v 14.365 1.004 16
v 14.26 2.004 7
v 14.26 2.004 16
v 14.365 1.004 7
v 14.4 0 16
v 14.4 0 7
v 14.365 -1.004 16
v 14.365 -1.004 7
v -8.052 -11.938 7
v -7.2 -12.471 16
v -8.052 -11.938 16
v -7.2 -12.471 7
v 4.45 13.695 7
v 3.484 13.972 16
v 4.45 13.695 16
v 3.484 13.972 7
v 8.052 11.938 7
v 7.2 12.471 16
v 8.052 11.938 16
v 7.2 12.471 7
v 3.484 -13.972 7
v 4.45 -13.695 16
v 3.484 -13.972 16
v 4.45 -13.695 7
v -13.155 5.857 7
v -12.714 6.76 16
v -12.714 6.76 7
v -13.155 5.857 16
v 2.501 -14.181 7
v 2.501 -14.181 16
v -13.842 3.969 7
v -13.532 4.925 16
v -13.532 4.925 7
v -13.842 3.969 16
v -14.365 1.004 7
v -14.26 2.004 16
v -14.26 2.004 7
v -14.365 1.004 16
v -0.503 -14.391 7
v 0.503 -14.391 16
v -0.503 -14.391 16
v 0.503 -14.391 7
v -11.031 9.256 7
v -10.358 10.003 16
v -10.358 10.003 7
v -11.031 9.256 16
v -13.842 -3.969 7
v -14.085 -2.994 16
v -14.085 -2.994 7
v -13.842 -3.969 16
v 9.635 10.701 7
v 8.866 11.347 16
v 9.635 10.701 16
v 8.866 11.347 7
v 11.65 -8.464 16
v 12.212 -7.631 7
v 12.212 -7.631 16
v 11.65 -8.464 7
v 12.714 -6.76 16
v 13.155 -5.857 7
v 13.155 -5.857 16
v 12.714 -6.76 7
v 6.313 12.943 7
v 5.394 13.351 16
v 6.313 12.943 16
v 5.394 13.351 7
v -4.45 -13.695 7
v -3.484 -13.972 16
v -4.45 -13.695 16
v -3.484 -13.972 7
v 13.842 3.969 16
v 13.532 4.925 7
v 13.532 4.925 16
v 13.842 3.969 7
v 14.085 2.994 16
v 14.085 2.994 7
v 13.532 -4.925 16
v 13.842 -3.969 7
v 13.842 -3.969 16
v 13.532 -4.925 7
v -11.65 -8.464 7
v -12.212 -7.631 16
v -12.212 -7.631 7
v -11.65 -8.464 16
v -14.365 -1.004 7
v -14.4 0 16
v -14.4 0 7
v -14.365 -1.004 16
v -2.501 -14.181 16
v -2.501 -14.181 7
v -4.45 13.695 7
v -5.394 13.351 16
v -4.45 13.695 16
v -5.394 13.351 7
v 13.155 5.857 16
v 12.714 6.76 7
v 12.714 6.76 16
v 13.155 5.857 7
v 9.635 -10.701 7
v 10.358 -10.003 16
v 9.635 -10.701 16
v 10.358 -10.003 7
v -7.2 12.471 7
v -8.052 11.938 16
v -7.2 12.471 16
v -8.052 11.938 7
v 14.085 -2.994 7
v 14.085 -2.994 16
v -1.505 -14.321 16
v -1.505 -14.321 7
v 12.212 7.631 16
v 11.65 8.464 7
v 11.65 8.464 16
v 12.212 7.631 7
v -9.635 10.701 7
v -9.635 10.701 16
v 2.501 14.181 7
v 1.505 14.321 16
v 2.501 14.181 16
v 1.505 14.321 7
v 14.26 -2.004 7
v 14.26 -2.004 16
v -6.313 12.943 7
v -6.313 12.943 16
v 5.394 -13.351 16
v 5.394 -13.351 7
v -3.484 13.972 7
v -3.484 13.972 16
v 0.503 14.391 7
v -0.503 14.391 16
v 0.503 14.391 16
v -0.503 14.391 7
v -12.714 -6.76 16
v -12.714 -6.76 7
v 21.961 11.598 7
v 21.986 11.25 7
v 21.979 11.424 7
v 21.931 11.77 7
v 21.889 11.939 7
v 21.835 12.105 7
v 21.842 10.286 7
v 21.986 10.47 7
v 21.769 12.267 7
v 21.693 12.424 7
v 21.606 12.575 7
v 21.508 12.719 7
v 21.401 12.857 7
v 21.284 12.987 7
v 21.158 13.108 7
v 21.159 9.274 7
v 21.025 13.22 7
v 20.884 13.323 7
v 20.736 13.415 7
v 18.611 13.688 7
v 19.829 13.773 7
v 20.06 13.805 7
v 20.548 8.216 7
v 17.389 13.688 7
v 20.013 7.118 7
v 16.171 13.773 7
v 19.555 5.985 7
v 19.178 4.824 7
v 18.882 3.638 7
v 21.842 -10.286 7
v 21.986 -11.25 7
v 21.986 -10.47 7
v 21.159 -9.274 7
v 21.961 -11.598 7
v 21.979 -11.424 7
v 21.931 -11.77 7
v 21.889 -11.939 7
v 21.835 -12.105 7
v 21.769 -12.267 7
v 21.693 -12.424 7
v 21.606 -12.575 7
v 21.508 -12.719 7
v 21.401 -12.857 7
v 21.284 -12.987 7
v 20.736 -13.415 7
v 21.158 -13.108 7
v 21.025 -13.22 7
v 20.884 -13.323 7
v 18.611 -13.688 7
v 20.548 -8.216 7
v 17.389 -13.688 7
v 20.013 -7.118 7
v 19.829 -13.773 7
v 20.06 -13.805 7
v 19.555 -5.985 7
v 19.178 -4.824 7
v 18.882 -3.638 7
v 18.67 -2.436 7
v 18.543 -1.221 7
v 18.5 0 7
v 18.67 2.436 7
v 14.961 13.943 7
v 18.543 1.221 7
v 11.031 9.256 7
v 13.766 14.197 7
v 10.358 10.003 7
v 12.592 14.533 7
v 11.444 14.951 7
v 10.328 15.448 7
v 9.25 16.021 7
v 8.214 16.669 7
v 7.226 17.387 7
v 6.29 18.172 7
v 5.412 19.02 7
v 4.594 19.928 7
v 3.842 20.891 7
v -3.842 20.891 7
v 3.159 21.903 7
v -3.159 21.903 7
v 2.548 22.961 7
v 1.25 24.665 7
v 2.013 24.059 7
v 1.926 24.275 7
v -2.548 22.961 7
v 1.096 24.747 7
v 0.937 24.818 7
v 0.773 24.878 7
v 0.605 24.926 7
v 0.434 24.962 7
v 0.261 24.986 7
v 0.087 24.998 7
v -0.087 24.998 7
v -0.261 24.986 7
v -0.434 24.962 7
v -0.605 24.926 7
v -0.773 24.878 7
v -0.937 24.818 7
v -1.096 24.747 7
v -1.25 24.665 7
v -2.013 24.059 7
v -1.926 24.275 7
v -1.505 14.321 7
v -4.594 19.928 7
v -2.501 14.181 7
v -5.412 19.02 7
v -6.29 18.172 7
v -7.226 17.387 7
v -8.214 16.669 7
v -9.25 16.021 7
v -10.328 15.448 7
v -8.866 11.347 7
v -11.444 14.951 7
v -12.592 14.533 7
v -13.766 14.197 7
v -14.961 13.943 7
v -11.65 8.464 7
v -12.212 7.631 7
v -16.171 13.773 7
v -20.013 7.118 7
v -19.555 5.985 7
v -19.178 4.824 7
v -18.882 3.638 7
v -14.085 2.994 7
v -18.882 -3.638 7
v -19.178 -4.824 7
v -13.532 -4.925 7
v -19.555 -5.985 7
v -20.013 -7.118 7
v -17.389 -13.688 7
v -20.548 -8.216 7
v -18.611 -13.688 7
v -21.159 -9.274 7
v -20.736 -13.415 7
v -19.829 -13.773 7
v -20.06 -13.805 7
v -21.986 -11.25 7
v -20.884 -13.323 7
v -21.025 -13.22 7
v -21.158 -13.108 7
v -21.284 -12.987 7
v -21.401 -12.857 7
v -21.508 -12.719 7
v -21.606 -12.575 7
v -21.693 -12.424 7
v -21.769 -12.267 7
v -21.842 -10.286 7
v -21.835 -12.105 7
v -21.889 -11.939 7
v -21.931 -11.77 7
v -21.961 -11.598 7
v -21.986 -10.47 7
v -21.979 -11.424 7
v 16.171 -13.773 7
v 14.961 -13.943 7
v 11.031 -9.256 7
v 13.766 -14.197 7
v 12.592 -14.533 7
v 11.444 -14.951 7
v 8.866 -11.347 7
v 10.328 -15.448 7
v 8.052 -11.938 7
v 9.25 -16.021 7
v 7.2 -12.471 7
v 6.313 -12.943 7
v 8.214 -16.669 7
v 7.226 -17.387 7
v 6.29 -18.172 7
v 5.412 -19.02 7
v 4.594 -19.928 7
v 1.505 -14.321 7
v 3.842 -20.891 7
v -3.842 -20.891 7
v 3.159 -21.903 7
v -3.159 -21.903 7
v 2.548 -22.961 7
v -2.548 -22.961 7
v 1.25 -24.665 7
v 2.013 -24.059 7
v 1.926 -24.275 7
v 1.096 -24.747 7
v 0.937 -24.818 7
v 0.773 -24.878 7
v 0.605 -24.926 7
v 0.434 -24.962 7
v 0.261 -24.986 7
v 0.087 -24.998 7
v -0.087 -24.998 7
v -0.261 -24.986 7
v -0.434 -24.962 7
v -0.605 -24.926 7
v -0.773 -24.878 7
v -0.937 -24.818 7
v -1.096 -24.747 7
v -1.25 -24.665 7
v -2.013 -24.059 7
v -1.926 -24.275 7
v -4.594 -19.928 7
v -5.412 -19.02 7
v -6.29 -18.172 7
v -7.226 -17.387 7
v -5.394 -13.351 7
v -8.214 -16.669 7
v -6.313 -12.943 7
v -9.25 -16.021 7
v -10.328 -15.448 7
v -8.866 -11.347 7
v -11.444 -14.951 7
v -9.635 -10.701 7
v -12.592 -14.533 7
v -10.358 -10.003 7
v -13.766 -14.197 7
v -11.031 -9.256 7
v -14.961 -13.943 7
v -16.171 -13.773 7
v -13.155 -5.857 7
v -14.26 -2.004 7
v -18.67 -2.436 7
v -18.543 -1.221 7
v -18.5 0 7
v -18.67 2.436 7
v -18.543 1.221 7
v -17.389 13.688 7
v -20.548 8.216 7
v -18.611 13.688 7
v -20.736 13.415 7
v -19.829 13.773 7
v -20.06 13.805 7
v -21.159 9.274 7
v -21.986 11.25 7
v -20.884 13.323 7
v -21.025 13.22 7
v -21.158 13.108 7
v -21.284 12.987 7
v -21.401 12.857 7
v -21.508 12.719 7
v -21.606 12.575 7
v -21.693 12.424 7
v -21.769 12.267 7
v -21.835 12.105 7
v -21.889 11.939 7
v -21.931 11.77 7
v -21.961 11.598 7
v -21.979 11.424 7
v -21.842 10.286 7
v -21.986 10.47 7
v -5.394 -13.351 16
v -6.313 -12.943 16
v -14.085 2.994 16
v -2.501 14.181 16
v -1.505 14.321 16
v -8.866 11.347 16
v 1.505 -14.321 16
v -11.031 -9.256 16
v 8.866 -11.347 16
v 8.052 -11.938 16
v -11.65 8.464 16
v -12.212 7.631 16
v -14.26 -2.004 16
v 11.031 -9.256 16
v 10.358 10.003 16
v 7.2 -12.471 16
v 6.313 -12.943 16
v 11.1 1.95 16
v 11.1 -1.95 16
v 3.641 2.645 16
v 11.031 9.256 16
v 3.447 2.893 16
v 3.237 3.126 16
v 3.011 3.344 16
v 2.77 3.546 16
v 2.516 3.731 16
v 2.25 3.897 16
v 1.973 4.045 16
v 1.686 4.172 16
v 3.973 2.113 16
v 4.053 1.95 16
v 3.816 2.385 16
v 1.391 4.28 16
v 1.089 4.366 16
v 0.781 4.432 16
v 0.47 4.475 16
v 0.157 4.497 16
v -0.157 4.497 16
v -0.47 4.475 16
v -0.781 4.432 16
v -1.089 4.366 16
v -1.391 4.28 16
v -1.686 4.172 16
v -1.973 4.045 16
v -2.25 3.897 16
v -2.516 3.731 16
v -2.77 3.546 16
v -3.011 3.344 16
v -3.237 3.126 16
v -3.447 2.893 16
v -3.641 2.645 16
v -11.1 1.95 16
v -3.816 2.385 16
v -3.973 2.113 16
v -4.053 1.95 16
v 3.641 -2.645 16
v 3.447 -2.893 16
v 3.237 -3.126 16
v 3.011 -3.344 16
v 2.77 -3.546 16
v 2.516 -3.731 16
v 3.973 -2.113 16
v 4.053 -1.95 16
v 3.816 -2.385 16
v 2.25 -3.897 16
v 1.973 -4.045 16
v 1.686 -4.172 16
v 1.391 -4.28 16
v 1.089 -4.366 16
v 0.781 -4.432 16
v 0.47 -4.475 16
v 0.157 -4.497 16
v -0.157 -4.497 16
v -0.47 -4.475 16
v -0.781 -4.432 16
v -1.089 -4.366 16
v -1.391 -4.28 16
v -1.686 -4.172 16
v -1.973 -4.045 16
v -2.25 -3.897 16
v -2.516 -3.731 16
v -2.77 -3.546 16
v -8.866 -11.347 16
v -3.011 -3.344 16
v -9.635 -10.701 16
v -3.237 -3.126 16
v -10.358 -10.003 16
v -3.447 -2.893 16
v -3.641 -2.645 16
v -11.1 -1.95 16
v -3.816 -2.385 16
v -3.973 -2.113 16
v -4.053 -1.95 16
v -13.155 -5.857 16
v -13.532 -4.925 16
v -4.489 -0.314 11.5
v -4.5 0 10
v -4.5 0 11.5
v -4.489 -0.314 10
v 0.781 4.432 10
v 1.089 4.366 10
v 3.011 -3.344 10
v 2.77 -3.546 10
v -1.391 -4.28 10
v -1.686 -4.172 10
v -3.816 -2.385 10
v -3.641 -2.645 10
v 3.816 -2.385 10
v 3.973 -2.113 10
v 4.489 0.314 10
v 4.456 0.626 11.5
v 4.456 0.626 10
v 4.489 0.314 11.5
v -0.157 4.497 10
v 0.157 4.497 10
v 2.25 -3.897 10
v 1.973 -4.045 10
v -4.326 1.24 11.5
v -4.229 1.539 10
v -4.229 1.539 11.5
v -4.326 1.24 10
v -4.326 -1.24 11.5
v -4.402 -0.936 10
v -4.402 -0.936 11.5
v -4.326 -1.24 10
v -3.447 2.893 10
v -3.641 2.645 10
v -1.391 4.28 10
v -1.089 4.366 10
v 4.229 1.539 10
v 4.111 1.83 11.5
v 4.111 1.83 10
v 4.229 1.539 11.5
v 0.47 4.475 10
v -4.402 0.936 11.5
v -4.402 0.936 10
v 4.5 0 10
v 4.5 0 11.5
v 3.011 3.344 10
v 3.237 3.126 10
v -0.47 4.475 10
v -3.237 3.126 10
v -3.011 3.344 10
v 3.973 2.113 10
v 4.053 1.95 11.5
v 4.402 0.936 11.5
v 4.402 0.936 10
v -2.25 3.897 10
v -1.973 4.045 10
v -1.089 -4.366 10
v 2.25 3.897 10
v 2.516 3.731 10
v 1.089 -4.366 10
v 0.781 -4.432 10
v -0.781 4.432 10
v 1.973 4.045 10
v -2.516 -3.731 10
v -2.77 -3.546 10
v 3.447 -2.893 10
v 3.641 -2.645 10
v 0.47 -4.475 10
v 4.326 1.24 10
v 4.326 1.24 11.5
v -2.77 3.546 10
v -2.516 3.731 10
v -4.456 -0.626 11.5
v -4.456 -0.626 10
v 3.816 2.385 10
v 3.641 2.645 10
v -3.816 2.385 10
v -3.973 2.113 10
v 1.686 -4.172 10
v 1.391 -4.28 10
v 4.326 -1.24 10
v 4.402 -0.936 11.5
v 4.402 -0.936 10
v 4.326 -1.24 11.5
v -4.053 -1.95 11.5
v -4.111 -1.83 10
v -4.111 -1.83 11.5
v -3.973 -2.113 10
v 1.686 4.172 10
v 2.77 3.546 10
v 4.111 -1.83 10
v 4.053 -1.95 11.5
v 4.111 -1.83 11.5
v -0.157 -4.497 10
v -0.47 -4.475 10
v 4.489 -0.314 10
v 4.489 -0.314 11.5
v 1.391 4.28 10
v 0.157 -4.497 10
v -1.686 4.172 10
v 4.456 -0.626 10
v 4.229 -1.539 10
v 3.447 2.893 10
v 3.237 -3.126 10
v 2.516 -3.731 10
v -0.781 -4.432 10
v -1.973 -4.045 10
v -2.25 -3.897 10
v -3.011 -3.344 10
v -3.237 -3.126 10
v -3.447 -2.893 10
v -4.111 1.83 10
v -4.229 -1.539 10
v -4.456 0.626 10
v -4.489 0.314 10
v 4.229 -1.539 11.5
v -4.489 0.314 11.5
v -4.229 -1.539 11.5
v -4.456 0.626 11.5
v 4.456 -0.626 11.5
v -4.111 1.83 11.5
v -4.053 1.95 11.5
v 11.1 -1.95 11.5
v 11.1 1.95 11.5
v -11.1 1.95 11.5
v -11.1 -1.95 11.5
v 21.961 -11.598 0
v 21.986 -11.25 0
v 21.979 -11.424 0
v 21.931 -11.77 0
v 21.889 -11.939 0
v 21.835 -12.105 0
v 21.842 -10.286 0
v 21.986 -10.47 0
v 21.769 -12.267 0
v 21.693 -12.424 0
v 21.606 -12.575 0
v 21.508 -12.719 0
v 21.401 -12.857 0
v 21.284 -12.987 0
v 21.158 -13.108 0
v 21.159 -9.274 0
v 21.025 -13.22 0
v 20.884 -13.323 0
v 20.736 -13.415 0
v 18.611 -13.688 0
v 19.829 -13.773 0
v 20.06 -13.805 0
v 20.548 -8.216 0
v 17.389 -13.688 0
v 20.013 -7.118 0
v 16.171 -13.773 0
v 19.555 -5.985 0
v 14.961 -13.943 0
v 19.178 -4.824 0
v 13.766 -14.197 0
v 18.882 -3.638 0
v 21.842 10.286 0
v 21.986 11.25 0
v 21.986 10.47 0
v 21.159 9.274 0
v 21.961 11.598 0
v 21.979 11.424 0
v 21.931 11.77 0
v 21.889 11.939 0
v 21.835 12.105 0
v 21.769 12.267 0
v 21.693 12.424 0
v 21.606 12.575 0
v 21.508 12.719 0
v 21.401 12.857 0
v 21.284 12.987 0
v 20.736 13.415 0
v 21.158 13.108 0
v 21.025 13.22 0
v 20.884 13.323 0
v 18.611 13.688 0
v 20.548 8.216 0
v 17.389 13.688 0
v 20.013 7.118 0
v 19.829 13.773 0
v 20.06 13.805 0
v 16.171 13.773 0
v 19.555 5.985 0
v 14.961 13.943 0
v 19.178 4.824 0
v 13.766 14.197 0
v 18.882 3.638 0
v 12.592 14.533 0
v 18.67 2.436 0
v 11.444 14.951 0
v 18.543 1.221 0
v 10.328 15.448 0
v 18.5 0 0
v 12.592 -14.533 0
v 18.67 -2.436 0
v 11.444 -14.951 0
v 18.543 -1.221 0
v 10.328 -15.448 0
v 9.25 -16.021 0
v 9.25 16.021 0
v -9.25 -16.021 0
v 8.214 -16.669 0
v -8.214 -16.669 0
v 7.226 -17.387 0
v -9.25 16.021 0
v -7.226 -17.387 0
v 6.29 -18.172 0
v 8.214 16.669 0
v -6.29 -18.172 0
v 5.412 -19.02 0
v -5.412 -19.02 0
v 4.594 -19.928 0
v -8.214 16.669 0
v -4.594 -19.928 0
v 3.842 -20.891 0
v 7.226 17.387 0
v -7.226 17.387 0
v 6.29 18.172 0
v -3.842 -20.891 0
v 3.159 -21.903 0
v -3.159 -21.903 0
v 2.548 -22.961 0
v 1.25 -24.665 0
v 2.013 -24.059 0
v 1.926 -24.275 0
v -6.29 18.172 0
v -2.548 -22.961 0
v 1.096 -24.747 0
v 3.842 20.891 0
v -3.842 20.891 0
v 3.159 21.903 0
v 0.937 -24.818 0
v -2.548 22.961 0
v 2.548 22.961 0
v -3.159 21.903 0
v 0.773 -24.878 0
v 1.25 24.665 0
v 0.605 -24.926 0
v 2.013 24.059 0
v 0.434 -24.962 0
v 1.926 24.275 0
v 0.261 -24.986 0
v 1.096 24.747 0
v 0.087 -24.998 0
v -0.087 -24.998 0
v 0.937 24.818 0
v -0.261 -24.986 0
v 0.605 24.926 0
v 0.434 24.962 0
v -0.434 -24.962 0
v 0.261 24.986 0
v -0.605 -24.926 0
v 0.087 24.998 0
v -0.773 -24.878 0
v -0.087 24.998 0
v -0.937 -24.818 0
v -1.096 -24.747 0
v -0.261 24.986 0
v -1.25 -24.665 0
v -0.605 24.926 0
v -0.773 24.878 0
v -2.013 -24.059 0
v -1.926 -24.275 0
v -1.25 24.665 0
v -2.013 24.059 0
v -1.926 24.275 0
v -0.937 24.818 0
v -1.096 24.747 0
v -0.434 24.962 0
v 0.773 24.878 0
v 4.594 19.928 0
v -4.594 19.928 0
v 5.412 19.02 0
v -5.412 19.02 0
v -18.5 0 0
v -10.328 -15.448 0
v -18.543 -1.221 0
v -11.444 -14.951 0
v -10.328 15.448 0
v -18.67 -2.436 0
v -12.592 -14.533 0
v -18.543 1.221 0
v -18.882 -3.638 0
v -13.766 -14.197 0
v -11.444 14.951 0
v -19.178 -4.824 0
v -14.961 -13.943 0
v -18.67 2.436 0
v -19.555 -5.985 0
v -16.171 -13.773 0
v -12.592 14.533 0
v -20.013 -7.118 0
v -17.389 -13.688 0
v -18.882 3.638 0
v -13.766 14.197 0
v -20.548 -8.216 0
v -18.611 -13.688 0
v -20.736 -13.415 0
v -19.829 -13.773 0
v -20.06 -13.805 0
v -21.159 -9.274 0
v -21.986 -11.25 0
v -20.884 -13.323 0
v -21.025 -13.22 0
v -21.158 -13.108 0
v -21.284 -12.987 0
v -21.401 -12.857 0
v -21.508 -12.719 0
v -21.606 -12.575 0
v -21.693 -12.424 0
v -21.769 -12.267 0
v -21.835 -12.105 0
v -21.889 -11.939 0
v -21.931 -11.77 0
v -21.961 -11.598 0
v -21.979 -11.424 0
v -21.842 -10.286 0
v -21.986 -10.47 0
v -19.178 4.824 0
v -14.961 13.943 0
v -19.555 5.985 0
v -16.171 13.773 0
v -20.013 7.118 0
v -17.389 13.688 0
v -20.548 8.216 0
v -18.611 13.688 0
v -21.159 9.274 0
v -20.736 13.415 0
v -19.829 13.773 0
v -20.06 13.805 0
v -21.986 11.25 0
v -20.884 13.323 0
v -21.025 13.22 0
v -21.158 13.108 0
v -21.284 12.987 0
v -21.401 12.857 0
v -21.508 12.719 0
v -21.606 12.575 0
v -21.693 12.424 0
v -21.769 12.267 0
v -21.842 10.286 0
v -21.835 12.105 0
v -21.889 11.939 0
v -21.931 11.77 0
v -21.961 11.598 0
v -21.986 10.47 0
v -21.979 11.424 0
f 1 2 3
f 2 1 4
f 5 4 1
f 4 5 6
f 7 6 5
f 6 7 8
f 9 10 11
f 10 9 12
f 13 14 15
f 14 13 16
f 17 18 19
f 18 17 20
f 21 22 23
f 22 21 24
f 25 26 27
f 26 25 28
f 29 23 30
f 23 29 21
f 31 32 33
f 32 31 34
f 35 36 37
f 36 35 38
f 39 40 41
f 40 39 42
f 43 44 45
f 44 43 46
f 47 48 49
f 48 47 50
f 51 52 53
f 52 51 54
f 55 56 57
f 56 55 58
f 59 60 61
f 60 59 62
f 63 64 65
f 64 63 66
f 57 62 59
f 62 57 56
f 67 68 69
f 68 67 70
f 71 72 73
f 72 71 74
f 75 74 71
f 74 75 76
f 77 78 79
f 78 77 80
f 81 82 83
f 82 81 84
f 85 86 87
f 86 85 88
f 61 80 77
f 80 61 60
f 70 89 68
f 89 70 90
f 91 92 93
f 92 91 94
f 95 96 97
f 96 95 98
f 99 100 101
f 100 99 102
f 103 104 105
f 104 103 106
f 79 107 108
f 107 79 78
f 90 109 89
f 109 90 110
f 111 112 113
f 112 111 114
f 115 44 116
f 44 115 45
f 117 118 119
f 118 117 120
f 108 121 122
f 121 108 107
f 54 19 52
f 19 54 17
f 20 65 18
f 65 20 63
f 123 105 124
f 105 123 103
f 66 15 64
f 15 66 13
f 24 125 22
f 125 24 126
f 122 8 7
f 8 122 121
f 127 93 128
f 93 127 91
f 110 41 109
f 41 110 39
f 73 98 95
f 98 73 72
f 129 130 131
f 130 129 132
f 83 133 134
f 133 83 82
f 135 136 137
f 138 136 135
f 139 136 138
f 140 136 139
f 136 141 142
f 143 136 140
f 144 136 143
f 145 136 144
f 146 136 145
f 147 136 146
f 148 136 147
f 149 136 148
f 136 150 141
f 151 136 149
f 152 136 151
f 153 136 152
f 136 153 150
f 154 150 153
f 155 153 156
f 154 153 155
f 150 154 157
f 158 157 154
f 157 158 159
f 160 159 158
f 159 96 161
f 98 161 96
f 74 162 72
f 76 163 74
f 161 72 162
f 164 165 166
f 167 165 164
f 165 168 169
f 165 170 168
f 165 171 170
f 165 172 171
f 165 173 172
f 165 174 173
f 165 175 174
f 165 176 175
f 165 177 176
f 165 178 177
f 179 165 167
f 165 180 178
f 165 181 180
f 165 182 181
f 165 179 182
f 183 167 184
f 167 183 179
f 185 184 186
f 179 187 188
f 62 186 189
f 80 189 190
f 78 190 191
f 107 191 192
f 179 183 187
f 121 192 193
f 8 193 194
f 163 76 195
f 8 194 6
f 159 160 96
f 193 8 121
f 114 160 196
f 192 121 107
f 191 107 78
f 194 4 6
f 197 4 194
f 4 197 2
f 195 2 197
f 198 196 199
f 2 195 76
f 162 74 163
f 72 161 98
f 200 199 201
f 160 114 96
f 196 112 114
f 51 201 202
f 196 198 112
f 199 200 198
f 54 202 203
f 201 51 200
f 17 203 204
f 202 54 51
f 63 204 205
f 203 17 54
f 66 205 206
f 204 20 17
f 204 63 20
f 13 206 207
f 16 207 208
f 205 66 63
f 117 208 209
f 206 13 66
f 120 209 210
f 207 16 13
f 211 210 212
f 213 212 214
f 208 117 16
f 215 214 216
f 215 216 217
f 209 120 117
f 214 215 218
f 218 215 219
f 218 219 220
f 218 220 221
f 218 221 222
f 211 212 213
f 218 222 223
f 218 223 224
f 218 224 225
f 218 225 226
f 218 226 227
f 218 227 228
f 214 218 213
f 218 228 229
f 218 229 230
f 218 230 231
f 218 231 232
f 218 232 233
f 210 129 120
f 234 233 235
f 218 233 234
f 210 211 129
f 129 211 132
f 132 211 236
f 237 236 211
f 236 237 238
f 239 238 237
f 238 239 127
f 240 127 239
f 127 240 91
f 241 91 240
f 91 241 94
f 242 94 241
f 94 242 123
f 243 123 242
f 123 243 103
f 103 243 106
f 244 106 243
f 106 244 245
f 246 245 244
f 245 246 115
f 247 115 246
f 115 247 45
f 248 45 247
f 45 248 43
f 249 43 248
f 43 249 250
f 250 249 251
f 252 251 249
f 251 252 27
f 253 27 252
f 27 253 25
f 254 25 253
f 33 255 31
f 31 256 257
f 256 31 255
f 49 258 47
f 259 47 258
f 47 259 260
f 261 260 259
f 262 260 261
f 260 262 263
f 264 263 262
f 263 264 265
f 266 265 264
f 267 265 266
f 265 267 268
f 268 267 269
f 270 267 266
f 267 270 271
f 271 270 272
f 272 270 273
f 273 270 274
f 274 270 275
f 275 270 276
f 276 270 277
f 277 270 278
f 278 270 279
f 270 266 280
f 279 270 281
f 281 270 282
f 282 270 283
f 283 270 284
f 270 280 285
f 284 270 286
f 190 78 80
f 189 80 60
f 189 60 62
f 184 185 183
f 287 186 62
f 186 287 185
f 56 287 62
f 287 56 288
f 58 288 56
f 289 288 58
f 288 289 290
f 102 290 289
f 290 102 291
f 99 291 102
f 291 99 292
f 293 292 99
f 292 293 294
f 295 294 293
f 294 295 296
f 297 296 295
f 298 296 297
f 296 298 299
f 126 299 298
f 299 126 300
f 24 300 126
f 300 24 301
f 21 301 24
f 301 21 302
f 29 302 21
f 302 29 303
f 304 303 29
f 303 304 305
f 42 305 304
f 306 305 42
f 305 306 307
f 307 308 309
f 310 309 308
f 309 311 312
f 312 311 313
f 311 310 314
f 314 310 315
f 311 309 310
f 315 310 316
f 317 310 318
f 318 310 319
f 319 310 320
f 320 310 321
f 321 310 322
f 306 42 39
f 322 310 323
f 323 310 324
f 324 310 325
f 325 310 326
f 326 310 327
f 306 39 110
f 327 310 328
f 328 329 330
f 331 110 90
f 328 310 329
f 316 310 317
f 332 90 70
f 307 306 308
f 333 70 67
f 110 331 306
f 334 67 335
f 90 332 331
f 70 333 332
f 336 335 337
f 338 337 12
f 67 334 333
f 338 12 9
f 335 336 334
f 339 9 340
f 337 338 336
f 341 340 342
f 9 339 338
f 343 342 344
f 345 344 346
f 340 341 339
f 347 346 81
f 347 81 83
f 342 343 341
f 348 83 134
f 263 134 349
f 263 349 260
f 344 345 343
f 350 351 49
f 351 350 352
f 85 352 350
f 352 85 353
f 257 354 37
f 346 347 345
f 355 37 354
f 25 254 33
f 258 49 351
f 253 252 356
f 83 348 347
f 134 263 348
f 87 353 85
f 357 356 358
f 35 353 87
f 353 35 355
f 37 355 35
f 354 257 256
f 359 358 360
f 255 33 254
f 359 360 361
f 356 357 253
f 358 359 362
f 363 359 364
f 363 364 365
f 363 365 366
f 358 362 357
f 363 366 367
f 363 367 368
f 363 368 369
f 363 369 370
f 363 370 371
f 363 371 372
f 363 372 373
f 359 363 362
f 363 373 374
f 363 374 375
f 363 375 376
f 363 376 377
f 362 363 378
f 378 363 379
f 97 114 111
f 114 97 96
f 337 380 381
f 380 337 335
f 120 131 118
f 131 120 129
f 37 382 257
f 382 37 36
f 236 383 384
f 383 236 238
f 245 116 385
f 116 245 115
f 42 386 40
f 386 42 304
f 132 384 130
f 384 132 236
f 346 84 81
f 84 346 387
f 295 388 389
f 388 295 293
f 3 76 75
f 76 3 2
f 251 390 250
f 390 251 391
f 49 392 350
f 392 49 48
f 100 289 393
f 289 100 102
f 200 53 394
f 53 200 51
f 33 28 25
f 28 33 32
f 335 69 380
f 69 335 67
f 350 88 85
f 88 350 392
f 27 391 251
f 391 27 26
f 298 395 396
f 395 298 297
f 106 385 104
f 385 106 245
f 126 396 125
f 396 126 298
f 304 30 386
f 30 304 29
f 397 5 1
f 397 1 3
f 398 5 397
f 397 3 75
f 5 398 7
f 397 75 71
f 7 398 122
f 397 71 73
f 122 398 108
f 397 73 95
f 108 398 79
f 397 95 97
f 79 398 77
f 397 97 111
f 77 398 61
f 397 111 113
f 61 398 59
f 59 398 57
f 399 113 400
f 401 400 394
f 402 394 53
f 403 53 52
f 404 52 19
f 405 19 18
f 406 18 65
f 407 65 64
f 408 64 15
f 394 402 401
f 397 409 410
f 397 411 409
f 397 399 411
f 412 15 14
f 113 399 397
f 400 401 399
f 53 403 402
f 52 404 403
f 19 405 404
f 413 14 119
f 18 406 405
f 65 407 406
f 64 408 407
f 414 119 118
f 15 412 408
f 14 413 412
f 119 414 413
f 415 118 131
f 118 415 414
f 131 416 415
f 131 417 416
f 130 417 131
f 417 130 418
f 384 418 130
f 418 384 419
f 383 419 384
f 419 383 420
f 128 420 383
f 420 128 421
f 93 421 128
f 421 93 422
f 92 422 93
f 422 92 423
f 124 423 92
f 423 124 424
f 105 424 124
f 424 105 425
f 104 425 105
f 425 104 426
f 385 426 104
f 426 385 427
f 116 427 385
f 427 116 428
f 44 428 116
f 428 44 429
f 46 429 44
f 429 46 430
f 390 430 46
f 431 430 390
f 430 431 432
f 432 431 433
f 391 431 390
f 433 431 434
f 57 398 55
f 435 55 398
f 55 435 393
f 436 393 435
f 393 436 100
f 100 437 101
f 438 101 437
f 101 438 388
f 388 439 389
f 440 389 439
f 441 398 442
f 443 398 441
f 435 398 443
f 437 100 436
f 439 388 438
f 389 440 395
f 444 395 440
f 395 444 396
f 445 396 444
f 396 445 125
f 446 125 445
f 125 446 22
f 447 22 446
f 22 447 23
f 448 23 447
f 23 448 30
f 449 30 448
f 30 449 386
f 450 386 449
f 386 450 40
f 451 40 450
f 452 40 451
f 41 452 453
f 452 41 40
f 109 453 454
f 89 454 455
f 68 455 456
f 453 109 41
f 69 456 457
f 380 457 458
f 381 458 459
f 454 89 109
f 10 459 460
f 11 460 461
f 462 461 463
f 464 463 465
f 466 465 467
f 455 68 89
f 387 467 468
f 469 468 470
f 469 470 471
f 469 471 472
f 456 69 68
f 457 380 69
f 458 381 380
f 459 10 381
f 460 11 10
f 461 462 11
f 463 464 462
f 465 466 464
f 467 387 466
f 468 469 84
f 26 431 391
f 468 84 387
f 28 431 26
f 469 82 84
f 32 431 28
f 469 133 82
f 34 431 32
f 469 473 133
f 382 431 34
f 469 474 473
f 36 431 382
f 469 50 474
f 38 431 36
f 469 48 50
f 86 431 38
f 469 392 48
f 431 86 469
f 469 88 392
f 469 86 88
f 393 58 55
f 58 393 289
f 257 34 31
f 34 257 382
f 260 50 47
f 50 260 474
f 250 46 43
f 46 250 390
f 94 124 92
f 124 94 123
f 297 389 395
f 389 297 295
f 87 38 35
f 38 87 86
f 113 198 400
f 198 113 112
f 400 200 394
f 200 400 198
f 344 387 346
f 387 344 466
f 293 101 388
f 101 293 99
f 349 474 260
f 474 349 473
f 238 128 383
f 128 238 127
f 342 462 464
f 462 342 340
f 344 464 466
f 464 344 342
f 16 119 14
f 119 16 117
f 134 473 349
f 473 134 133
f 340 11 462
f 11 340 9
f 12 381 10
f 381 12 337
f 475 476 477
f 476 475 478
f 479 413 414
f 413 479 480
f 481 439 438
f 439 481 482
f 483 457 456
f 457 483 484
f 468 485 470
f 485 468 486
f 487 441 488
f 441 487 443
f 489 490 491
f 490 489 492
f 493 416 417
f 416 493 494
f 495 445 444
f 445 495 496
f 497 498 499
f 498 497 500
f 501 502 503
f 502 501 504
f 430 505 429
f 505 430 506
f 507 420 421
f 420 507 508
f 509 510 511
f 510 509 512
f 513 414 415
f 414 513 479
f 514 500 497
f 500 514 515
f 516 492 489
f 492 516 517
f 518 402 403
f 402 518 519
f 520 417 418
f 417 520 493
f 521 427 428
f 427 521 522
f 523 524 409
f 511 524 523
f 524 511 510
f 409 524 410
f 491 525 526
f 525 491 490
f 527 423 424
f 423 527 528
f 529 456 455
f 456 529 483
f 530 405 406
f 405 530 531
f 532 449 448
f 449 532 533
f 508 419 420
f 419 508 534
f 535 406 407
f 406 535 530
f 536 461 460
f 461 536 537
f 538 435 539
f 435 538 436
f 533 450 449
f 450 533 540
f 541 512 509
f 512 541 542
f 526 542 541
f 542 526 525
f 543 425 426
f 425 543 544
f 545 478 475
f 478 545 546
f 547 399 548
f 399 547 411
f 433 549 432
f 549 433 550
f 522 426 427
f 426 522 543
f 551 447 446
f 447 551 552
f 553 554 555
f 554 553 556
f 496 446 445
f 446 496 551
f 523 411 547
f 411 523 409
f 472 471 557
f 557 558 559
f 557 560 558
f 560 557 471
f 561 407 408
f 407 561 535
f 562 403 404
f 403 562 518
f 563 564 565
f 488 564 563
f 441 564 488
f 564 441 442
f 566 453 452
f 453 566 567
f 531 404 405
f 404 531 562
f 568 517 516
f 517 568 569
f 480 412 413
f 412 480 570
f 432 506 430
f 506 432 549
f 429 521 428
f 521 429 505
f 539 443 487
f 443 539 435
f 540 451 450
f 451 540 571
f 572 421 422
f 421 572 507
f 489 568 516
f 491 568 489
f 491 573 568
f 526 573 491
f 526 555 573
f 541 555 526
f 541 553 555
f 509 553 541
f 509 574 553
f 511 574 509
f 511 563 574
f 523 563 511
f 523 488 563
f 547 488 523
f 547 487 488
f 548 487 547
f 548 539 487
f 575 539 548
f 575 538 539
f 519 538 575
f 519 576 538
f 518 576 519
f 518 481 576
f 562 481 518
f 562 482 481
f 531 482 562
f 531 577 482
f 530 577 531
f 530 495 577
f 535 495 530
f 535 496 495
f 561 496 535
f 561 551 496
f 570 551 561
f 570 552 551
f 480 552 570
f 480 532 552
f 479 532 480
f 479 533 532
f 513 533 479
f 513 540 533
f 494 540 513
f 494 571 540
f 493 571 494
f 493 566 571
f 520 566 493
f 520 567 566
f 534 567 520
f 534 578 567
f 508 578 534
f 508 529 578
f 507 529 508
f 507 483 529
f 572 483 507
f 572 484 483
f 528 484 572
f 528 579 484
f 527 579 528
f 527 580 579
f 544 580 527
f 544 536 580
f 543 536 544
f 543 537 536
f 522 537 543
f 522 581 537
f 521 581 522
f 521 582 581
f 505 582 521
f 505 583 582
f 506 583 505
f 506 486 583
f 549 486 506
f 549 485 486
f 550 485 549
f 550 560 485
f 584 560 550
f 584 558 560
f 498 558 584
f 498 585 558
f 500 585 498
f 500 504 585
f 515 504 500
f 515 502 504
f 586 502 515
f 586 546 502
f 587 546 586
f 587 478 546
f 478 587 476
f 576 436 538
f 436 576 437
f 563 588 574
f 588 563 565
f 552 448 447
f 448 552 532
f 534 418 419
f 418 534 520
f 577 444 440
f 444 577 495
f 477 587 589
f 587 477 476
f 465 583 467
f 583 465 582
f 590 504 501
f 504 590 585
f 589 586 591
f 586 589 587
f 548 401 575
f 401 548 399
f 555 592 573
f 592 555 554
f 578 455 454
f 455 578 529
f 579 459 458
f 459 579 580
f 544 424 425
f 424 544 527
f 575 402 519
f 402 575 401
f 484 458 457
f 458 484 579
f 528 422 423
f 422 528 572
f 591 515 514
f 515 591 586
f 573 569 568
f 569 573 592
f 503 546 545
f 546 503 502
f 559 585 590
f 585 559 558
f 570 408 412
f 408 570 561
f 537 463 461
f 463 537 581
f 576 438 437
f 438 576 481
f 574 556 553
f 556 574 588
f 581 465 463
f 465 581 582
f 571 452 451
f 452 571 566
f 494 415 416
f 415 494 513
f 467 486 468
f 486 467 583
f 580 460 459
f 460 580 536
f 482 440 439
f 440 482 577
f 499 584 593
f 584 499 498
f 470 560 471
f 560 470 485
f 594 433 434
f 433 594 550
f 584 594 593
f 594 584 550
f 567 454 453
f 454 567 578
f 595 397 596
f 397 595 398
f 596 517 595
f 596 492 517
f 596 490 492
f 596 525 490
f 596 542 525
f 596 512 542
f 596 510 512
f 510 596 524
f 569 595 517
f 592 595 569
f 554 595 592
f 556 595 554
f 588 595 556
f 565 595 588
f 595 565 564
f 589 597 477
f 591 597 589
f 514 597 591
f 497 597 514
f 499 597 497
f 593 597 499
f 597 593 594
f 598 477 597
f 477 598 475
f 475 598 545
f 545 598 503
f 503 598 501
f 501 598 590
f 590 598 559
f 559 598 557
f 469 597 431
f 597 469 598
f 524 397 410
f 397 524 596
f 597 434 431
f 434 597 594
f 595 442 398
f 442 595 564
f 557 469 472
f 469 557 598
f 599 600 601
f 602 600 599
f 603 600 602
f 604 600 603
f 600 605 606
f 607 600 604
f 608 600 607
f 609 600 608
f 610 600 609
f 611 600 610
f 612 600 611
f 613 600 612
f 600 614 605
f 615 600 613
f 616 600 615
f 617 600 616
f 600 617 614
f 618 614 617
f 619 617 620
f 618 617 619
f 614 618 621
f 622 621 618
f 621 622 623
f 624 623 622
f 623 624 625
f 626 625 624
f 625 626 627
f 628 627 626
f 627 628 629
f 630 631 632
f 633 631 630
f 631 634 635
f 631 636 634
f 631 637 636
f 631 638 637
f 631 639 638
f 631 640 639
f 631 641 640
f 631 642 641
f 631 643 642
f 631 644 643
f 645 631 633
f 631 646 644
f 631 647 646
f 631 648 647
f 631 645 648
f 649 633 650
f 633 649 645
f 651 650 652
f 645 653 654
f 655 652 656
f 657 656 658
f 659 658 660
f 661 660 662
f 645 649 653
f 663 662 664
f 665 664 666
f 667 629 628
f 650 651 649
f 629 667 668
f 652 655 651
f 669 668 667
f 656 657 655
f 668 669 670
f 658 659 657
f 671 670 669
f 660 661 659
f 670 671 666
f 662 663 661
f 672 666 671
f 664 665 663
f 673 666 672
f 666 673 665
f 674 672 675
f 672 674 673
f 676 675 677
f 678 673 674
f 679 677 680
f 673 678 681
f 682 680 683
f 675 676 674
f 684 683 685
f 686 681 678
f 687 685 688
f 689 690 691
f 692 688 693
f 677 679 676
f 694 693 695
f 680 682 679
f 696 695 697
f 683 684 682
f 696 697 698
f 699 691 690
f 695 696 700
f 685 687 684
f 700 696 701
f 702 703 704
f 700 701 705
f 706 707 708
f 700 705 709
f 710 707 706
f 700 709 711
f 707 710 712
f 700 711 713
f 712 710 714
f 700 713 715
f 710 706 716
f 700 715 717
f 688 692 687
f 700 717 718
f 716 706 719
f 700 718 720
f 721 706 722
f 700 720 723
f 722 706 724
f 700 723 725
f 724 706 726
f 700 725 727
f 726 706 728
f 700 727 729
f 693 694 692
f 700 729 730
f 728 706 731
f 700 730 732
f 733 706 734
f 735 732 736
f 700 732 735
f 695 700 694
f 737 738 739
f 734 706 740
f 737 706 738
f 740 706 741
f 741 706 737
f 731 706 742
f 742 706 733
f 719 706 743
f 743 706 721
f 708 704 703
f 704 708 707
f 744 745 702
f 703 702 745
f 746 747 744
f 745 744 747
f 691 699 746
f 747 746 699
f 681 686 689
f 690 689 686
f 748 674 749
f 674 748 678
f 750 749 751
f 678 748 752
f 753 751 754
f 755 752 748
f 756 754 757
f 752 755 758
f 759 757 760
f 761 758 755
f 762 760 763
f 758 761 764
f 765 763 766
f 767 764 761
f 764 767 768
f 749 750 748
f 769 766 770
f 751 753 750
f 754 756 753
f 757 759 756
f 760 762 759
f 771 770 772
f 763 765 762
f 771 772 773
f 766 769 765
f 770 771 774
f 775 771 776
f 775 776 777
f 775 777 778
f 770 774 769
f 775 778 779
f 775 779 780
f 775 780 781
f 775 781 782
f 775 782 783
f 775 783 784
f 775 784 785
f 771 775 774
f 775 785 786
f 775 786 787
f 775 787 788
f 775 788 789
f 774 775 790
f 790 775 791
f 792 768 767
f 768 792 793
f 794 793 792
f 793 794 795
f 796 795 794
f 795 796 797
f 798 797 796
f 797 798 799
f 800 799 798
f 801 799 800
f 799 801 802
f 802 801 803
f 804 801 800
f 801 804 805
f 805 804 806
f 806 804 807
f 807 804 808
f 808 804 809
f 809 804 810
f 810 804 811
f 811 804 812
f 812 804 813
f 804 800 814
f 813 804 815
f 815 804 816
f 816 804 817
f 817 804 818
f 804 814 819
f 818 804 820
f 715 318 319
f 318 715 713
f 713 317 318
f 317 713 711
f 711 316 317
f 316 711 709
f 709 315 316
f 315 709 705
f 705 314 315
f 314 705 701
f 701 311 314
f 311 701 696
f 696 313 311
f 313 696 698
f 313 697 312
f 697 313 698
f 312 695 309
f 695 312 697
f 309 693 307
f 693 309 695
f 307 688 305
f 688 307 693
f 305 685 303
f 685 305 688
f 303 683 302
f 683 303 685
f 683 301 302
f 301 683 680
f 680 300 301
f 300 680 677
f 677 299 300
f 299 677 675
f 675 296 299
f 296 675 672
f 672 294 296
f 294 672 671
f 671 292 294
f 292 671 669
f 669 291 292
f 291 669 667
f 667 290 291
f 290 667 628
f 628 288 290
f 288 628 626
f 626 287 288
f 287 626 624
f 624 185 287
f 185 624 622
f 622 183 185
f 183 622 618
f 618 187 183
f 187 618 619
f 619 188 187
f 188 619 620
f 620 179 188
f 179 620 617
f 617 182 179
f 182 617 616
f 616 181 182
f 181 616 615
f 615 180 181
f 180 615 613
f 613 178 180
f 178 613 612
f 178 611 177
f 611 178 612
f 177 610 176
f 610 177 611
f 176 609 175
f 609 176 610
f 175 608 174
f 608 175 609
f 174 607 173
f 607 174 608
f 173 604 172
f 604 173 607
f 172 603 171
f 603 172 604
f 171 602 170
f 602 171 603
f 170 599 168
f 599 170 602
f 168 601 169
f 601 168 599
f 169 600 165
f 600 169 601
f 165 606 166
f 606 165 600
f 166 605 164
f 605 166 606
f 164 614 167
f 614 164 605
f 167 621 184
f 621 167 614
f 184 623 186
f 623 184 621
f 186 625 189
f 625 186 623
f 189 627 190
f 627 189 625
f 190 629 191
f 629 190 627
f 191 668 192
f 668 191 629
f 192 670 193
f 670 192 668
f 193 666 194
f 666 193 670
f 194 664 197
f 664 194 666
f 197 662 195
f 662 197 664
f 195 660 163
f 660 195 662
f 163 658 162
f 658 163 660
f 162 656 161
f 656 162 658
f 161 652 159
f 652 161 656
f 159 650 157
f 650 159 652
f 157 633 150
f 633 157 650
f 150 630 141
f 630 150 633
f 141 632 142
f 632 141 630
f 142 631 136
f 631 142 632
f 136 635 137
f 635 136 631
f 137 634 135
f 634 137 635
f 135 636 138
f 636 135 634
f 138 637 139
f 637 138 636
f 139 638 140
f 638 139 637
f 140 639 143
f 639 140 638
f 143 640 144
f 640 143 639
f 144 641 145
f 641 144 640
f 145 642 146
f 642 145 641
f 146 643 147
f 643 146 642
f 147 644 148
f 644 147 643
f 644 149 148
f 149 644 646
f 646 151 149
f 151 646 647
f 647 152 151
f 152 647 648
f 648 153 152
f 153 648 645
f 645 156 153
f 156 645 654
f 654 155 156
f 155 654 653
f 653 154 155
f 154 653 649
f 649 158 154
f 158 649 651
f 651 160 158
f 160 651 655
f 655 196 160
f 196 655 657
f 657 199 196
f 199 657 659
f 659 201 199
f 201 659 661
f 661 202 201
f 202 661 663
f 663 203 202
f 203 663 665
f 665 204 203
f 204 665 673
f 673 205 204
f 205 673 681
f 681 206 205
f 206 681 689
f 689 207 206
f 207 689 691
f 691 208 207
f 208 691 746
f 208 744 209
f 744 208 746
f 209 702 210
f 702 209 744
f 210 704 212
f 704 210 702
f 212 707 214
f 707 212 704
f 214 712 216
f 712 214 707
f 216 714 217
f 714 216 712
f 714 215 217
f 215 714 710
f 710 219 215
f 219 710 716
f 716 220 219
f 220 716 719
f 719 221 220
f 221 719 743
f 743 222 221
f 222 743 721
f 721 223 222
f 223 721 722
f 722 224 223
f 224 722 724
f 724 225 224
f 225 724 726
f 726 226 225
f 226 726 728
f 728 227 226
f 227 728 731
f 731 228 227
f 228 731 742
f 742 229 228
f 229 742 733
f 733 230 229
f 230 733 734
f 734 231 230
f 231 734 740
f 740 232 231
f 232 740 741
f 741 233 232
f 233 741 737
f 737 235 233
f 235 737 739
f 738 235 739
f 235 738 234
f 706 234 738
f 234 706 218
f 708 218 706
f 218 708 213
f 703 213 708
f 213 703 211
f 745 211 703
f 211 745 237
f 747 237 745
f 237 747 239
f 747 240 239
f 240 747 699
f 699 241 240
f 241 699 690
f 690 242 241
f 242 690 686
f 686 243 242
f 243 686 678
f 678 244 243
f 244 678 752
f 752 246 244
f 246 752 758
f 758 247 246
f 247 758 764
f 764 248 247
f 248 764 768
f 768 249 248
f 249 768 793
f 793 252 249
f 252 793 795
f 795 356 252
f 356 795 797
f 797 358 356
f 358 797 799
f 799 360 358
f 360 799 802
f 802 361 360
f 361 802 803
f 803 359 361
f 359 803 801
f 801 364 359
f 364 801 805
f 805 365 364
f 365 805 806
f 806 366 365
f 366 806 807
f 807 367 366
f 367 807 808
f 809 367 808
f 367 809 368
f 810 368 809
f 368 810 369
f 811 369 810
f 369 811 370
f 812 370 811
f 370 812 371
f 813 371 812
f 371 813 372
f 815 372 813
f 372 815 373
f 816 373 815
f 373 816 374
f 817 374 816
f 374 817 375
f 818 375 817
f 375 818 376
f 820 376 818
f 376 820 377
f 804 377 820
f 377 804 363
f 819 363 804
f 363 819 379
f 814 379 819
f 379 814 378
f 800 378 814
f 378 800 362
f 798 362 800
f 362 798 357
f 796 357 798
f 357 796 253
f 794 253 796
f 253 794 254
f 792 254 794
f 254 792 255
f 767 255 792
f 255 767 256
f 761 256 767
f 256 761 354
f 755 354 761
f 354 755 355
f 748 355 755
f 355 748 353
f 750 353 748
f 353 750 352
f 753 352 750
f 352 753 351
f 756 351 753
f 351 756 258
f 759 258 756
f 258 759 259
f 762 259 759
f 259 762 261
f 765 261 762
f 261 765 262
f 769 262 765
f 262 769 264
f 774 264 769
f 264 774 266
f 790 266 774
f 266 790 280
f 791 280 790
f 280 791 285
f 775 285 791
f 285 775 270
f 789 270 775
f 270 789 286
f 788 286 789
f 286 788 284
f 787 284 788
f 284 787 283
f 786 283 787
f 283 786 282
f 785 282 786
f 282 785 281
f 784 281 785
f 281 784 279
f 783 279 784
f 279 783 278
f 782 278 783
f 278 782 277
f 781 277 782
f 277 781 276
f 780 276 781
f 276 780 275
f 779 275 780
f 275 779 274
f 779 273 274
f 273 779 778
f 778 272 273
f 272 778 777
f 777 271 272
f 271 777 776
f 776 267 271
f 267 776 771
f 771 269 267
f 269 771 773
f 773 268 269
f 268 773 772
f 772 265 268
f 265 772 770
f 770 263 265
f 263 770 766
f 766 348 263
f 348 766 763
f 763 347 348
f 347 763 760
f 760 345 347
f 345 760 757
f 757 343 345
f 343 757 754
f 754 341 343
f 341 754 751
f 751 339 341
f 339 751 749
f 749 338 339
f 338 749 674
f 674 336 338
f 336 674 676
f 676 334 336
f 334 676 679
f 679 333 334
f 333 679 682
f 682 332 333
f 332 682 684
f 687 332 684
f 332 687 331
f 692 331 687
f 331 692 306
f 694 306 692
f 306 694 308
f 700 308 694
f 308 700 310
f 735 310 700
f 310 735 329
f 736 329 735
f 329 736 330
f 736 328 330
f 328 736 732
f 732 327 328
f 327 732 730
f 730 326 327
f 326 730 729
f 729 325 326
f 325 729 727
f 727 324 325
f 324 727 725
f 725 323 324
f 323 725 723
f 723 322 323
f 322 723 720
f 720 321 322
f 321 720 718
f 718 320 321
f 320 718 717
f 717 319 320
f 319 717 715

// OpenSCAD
$fn = 90;
tee_handle_len  = 22.2; //  Length from end to end of tee handle
tee_handle_dia  =  3.9; //  Diameter of tee handle bar
tee_clearance   =  3.3; //  Clearance between tee handle and jack base
tee_depth       =  4.5; //  Depth of recess for tee handle
stud_dia        =  9.0; //  Diameter of center of tee handler
stud_depth      =  6.0; //  Depth of recess for tee stud
base_height     =  9.0; //  Thickness of base portion
knob_height     =  7.0; //  Thickness of knob portion

module knob_base () {
  difference () {
    translate ([0, 0, 0])
      cylinder (d = tee_handle_len + (tee_clearance * 2), h = base_height);
    translate ([0, 0, base_height - stud_depth])
      cylinder (d = stud_dia, h = stud_depth + 0.01);
    translate ([-tee_handle_len / 2, -tee_handle_dia / 2, base_height - tee_depth])
      cube ([tee_handle_len, tee_handle_dia, tee_depth + 0.01]);
  }
}

module knob_handle (hgt = 7) {
  linear_extrude (height = hgt) {
    difference () {
      dia = 50;
      point_dia = 5;
      cutout_dia = 35;
      cutout_offset = 36;

      hull () {
        for (i = [0:60:360]) {
          x = sin (i) * ((dia - point_dia) / 2);
          y = cos (i) * ((dia - point_dia) / 2);
          translate ([x, y, 0])
            circle (d = point_dia);
        }
      }

      for (i = [30:60:360]) {
        x = sin (i) * cutout_offset;
        y = cos (i) * cutout_offset;
        translate ([x, y, 0])
          circle (d = cutout_dia);
      }
    }
  }
}

translate ([0, 0, 0])
  knob_handle (knob_height);
translate ([0, 0, knob_height])
  knob_base ();
